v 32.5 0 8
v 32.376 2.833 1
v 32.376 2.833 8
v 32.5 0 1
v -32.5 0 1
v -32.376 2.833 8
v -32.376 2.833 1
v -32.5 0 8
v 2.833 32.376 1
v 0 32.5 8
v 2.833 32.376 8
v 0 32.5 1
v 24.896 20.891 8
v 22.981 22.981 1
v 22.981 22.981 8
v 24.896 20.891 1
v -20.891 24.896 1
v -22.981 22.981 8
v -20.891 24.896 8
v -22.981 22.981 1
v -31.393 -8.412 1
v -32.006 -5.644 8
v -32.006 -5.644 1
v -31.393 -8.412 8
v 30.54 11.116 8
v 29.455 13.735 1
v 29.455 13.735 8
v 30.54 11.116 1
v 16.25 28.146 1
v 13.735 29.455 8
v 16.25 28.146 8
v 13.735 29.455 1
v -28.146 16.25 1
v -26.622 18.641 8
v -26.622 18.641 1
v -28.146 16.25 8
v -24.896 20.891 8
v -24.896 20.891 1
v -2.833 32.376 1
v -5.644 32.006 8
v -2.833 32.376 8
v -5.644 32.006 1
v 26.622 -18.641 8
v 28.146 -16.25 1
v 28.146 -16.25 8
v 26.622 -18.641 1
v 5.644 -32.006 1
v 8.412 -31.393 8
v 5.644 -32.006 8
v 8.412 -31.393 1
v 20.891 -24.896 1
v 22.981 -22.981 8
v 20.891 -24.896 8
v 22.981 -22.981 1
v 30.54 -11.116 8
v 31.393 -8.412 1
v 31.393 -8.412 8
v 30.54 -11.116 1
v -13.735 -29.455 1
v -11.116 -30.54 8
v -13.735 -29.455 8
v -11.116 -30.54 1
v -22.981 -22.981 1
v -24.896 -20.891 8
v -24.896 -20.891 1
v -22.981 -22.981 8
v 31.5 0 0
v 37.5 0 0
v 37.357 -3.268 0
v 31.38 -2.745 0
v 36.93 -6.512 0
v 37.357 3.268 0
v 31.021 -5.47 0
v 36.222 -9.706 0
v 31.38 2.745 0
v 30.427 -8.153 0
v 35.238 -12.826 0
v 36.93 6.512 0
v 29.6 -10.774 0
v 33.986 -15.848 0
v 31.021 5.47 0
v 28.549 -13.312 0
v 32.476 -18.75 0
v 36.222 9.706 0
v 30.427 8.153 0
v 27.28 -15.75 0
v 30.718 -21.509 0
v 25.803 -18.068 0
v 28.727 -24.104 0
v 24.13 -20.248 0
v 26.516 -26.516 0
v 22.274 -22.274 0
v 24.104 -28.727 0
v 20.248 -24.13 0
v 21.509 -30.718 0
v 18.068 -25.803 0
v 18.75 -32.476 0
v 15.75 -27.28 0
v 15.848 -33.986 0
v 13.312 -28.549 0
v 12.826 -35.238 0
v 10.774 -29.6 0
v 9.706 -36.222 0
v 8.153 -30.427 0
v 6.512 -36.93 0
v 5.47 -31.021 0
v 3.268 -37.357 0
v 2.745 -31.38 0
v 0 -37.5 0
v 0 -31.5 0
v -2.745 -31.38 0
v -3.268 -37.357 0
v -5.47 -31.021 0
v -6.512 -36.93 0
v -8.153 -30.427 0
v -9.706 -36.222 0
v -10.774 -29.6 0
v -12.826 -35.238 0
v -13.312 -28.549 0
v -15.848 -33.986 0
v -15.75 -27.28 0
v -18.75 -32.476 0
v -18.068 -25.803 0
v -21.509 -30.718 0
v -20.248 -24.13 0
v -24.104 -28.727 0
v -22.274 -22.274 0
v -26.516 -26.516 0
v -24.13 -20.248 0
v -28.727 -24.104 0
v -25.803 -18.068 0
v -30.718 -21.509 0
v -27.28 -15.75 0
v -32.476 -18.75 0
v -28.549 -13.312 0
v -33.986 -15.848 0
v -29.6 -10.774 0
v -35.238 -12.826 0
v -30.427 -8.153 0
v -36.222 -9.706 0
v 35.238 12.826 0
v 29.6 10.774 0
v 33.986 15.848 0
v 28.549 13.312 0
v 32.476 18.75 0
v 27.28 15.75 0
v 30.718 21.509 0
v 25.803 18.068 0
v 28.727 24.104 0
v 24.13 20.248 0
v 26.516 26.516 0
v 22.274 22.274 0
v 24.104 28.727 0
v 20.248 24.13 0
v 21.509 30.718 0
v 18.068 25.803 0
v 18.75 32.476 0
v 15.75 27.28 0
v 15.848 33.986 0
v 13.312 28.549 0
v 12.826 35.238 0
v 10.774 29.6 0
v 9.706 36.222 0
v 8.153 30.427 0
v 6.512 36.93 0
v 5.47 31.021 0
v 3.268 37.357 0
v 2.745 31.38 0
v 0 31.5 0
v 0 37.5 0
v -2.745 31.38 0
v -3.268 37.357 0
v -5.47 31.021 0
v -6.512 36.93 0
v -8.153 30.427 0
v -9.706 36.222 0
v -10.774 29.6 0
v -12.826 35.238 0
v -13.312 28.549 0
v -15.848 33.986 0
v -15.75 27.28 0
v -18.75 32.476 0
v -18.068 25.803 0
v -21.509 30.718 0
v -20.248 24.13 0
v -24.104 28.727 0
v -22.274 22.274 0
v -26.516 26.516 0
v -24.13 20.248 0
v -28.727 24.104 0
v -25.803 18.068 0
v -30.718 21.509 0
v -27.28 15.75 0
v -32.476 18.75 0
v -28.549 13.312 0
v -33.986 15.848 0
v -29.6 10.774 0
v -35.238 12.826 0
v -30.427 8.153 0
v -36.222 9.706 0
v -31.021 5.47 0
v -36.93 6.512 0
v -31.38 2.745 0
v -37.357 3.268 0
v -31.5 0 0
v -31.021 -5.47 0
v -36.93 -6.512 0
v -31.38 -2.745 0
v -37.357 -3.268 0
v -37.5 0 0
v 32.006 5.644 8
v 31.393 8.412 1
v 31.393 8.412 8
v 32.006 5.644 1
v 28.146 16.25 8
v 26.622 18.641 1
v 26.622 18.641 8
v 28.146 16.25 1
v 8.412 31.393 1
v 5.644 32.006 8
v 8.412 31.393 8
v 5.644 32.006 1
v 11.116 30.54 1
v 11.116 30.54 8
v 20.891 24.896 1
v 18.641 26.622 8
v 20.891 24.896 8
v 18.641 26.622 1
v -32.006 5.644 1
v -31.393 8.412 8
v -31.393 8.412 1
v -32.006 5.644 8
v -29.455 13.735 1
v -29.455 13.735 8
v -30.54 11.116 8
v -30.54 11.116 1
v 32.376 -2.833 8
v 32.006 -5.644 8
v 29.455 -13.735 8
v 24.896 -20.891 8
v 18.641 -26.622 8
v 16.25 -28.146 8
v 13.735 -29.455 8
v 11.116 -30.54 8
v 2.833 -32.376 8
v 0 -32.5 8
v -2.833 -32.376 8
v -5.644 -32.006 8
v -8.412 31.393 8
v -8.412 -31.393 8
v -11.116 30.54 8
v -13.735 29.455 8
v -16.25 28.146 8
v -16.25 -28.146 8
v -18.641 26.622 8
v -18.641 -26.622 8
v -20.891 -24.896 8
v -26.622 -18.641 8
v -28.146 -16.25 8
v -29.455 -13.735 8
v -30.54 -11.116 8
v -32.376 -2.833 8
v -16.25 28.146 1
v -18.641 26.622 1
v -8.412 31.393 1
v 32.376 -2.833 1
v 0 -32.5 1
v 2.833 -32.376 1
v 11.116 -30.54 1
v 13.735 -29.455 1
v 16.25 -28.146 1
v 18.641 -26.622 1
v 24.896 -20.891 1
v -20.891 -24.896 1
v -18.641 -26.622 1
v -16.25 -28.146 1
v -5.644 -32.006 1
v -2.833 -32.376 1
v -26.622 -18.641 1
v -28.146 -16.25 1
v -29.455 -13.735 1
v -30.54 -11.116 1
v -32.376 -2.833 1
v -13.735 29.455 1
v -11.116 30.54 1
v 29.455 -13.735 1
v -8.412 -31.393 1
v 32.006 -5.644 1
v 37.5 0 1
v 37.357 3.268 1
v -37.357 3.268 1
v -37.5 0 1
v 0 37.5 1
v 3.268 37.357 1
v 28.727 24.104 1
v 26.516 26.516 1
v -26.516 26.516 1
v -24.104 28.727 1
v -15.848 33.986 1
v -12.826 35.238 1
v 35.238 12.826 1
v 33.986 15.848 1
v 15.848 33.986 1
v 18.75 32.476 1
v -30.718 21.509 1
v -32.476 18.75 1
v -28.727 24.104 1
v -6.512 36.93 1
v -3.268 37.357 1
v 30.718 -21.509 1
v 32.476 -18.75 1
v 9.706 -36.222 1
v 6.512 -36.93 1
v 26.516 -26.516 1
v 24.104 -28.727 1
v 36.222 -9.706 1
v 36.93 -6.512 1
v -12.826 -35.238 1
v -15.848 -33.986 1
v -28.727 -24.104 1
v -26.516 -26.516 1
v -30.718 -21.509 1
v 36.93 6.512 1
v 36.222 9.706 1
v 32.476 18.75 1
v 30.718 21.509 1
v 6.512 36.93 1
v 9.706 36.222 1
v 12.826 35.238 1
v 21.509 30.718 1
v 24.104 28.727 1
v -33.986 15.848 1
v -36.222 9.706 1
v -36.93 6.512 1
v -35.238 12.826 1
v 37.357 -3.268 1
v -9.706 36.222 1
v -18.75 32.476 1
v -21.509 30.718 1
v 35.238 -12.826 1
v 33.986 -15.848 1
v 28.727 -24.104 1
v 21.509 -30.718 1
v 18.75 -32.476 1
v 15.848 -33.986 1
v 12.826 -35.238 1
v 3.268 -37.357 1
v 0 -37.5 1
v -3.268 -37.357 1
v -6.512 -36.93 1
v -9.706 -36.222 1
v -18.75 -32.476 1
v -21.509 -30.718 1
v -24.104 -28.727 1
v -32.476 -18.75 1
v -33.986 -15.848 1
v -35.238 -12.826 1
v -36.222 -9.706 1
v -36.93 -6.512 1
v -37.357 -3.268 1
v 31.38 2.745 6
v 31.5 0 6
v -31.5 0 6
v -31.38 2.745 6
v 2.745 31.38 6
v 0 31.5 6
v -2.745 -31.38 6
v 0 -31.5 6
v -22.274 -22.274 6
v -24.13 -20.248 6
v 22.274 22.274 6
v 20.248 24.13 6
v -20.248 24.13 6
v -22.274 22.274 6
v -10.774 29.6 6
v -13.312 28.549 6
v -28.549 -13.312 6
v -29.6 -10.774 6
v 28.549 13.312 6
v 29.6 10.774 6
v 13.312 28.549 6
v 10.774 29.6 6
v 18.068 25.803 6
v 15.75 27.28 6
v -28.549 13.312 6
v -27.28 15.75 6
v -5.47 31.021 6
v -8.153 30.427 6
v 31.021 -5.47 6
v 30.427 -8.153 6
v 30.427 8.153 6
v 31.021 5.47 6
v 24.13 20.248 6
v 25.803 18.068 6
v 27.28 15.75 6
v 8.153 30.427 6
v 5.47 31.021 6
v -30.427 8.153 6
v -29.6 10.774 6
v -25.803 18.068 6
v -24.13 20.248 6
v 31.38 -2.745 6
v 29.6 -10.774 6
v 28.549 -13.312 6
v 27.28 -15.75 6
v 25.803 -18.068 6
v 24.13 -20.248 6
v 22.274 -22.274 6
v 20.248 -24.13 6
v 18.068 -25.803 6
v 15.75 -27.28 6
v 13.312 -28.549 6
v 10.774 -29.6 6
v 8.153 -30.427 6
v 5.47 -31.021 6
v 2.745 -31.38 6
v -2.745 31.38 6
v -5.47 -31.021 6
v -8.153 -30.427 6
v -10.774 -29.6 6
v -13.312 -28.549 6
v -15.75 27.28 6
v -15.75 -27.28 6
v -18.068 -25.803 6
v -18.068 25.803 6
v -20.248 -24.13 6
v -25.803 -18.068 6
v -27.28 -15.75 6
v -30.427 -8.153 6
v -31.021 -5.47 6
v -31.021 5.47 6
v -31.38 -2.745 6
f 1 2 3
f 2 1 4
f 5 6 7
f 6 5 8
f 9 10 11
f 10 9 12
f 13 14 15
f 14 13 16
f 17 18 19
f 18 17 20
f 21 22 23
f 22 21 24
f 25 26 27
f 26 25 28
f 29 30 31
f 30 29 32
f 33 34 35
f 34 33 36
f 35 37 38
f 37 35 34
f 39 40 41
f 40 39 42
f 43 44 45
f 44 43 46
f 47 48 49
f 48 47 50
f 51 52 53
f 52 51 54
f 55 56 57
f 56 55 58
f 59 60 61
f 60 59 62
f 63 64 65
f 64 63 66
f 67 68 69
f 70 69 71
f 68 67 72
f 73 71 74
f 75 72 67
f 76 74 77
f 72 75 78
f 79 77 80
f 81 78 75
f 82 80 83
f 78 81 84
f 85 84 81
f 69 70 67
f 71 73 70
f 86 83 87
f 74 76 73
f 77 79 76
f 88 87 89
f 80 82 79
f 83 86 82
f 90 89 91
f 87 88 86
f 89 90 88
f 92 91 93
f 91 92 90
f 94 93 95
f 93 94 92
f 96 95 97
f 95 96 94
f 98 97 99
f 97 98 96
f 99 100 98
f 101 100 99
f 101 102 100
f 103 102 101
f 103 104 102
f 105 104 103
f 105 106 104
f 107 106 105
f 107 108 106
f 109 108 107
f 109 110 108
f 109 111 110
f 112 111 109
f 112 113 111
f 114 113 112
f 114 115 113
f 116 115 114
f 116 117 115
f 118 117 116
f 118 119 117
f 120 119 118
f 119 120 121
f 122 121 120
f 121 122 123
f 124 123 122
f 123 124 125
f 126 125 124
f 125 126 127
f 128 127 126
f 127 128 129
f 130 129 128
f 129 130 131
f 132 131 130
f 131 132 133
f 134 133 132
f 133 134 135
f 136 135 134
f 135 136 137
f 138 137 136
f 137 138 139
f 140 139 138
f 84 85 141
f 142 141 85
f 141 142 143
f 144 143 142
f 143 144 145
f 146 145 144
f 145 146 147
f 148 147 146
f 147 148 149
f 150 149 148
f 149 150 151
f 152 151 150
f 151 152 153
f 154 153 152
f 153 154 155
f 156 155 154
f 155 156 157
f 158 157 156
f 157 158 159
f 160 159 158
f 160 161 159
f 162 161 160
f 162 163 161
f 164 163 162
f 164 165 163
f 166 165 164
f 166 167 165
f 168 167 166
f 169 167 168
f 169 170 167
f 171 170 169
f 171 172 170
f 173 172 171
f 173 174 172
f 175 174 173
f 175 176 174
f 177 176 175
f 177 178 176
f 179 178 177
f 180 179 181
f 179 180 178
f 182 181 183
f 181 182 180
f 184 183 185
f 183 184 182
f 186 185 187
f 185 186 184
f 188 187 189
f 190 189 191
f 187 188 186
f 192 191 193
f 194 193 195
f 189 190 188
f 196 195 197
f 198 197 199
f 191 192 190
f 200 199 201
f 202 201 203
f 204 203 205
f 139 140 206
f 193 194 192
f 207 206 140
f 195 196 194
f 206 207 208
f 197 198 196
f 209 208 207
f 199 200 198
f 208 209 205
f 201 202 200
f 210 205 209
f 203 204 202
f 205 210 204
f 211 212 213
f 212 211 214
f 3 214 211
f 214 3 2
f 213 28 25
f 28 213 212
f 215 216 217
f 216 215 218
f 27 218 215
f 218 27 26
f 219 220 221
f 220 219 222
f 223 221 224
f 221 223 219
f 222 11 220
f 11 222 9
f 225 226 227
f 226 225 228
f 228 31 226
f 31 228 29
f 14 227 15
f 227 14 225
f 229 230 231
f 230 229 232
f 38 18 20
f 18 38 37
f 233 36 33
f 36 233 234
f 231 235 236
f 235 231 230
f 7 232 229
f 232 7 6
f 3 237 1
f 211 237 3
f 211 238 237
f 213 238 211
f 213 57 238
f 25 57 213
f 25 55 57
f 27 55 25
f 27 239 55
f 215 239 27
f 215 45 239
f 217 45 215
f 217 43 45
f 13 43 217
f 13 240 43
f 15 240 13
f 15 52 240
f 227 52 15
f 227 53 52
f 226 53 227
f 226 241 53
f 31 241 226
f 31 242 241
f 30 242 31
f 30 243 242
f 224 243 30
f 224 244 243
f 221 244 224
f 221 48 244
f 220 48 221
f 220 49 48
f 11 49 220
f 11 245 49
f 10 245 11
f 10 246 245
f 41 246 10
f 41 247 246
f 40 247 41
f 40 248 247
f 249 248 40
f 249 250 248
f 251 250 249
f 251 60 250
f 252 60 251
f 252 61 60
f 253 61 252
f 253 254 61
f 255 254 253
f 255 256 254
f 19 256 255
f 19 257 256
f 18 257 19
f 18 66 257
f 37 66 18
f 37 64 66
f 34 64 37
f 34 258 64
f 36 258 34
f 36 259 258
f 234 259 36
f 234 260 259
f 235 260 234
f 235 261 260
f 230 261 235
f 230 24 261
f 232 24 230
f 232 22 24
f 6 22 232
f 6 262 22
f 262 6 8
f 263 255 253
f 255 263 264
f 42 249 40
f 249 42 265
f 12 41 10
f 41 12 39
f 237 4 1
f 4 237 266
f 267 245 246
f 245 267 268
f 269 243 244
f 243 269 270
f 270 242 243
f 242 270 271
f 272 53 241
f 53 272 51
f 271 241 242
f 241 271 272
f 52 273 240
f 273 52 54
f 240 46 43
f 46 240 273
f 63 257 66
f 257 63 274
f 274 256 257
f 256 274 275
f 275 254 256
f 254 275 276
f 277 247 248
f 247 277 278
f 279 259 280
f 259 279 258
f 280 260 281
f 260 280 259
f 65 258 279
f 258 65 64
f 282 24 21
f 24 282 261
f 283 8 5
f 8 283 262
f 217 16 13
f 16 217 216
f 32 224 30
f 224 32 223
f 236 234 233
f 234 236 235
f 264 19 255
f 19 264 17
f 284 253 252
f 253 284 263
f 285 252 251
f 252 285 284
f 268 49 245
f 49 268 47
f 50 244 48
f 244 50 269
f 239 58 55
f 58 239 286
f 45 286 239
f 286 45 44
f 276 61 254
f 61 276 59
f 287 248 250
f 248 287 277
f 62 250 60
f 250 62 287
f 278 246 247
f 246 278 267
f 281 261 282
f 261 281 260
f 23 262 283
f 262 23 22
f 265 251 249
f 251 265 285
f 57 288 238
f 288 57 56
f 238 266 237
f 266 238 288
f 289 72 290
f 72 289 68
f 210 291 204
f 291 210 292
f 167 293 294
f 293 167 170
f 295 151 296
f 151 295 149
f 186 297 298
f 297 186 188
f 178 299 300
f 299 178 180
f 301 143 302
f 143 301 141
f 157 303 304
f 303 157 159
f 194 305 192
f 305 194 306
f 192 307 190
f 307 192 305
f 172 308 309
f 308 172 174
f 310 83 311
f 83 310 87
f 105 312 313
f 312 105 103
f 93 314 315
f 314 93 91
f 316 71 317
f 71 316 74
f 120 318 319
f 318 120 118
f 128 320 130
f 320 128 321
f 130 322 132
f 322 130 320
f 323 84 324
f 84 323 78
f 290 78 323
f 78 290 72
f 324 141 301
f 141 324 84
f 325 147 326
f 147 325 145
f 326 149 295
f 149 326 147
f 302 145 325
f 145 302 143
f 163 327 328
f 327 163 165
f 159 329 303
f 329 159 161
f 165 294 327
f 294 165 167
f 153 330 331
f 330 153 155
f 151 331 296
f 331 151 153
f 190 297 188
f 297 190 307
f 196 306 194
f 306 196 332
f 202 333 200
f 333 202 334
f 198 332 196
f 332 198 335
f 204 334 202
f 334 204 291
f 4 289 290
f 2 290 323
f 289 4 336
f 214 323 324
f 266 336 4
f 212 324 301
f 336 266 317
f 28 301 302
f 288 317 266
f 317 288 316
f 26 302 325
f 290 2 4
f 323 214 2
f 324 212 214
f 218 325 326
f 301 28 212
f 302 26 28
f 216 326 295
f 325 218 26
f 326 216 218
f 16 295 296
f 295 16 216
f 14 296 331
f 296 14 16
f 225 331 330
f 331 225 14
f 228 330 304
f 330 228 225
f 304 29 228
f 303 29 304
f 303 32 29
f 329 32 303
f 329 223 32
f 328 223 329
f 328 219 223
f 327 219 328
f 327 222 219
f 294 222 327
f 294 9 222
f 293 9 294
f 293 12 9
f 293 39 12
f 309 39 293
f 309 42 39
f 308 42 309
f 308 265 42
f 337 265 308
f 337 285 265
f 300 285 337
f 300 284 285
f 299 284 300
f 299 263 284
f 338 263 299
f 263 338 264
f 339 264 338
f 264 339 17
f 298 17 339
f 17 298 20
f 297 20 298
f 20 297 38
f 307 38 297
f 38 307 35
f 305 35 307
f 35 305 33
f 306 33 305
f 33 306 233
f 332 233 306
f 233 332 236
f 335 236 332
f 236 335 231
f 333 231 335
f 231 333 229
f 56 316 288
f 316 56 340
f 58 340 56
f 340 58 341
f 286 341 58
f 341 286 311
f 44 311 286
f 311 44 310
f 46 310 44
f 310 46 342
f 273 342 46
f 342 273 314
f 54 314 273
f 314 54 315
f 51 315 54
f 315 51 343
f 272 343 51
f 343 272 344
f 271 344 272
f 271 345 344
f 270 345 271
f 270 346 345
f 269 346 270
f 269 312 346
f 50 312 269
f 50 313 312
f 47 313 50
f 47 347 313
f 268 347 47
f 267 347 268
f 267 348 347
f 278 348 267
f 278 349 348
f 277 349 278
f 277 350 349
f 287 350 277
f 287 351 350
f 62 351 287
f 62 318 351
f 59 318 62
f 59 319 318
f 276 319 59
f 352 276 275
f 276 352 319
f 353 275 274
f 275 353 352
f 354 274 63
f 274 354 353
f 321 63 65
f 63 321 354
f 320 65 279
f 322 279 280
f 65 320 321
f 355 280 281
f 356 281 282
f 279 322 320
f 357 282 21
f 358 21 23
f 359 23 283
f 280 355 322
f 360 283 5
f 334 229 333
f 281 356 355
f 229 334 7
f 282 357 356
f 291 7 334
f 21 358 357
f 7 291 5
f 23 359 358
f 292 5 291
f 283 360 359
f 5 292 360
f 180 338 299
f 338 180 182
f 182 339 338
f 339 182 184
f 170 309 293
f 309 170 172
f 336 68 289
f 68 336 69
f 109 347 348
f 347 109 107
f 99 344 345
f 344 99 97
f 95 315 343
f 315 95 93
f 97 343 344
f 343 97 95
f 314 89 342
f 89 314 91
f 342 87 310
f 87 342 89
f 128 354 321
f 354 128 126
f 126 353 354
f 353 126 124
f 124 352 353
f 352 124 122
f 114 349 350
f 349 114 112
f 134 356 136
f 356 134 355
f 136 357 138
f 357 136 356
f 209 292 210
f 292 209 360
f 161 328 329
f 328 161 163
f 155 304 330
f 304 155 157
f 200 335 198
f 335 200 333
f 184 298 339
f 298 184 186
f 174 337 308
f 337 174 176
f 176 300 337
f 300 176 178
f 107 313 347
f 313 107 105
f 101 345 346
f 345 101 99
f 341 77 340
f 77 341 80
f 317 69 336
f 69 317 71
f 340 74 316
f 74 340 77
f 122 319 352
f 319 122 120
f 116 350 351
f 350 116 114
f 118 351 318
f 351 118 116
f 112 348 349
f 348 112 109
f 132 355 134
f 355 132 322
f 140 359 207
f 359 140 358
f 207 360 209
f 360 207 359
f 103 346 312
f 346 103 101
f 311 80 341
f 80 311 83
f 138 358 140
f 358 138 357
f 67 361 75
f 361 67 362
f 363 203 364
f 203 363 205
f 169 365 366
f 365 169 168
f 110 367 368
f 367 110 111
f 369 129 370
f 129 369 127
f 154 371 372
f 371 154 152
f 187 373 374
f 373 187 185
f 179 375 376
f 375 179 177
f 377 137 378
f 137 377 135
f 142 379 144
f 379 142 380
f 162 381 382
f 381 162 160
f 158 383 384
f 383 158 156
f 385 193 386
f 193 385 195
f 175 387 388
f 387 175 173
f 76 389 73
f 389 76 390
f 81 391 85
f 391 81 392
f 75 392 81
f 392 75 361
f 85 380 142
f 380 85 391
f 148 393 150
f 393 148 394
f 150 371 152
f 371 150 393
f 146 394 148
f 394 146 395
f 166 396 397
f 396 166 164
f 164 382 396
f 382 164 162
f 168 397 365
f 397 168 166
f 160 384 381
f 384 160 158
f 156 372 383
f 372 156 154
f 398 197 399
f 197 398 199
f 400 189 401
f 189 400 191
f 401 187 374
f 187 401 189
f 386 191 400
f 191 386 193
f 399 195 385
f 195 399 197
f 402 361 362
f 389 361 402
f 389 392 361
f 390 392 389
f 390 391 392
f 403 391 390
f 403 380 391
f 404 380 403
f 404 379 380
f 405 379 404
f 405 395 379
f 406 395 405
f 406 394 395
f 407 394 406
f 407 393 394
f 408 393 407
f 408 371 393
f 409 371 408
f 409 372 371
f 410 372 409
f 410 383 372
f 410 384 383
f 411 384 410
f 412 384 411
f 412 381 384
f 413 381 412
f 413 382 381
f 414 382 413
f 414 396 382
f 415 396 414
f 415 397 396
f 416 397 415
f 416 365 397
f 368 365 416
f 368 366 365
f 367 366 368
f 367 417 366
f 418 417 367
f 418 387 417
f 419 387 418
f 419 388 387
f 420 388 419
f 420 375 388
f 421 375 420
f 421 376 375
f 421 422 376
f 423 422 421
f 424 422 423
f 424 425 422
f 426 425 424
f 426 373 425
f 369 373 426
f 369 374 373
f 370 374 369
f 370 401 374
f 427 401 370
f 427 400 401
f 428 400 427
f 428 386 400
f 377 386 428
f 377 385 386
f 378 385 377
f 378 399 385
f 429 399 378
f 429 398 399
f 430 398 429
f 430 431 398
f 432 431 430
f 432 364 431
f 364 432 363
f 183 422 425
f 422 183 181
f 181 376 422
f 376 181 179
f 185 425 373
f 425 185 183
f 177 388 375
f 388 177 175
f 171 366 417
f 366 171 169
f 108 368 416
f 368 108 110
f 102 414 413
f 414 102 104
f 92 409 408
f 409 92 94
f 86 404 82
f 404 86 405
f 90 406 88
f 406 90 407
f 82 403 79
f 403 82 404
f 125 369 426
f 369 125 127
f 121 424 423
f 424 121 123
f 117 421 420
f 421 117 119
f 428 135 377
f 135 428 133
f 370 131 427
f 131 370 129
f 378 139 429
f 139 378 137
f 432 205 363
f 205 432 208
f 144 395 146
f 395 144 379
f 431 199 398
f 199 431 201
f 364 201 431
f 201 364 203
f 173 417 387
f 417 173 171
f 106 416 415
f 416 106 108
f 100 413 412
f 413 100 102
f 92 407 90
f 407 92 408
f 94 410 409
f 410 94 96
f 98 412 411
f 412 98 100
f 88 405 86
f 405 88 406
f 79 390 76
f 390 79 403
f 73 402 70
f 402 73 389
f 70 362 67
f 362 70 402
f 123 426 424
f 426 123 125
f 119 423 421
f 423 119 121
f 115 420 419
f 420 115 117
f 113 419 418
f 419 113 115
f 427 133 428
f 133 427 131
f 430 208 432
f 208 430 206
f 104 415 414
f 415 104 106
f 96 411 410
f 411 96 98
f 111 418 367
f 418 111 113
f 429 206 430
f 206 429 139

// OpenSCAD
//General
$fn = 72;
tolerance = 0.5;
wall = 1;
r_hole = 65/2;
r_cover_body = r_hole;
r_cover_body_inner = r_cover_body - wall;
r_cover_cap = r_cover_body + 5; // 5mm rim?
h_cover = 7 + wall; // total height including rim

difference(){
  union(){
    cylinder(r=r_cover_body, h=h_cover);
    cylinder(r=r_cover_cap, h=wall);
  }
  translate([0,0,-wall*2])
  cylinder(r=r_cover_body_inner, h=h_cover);
}
